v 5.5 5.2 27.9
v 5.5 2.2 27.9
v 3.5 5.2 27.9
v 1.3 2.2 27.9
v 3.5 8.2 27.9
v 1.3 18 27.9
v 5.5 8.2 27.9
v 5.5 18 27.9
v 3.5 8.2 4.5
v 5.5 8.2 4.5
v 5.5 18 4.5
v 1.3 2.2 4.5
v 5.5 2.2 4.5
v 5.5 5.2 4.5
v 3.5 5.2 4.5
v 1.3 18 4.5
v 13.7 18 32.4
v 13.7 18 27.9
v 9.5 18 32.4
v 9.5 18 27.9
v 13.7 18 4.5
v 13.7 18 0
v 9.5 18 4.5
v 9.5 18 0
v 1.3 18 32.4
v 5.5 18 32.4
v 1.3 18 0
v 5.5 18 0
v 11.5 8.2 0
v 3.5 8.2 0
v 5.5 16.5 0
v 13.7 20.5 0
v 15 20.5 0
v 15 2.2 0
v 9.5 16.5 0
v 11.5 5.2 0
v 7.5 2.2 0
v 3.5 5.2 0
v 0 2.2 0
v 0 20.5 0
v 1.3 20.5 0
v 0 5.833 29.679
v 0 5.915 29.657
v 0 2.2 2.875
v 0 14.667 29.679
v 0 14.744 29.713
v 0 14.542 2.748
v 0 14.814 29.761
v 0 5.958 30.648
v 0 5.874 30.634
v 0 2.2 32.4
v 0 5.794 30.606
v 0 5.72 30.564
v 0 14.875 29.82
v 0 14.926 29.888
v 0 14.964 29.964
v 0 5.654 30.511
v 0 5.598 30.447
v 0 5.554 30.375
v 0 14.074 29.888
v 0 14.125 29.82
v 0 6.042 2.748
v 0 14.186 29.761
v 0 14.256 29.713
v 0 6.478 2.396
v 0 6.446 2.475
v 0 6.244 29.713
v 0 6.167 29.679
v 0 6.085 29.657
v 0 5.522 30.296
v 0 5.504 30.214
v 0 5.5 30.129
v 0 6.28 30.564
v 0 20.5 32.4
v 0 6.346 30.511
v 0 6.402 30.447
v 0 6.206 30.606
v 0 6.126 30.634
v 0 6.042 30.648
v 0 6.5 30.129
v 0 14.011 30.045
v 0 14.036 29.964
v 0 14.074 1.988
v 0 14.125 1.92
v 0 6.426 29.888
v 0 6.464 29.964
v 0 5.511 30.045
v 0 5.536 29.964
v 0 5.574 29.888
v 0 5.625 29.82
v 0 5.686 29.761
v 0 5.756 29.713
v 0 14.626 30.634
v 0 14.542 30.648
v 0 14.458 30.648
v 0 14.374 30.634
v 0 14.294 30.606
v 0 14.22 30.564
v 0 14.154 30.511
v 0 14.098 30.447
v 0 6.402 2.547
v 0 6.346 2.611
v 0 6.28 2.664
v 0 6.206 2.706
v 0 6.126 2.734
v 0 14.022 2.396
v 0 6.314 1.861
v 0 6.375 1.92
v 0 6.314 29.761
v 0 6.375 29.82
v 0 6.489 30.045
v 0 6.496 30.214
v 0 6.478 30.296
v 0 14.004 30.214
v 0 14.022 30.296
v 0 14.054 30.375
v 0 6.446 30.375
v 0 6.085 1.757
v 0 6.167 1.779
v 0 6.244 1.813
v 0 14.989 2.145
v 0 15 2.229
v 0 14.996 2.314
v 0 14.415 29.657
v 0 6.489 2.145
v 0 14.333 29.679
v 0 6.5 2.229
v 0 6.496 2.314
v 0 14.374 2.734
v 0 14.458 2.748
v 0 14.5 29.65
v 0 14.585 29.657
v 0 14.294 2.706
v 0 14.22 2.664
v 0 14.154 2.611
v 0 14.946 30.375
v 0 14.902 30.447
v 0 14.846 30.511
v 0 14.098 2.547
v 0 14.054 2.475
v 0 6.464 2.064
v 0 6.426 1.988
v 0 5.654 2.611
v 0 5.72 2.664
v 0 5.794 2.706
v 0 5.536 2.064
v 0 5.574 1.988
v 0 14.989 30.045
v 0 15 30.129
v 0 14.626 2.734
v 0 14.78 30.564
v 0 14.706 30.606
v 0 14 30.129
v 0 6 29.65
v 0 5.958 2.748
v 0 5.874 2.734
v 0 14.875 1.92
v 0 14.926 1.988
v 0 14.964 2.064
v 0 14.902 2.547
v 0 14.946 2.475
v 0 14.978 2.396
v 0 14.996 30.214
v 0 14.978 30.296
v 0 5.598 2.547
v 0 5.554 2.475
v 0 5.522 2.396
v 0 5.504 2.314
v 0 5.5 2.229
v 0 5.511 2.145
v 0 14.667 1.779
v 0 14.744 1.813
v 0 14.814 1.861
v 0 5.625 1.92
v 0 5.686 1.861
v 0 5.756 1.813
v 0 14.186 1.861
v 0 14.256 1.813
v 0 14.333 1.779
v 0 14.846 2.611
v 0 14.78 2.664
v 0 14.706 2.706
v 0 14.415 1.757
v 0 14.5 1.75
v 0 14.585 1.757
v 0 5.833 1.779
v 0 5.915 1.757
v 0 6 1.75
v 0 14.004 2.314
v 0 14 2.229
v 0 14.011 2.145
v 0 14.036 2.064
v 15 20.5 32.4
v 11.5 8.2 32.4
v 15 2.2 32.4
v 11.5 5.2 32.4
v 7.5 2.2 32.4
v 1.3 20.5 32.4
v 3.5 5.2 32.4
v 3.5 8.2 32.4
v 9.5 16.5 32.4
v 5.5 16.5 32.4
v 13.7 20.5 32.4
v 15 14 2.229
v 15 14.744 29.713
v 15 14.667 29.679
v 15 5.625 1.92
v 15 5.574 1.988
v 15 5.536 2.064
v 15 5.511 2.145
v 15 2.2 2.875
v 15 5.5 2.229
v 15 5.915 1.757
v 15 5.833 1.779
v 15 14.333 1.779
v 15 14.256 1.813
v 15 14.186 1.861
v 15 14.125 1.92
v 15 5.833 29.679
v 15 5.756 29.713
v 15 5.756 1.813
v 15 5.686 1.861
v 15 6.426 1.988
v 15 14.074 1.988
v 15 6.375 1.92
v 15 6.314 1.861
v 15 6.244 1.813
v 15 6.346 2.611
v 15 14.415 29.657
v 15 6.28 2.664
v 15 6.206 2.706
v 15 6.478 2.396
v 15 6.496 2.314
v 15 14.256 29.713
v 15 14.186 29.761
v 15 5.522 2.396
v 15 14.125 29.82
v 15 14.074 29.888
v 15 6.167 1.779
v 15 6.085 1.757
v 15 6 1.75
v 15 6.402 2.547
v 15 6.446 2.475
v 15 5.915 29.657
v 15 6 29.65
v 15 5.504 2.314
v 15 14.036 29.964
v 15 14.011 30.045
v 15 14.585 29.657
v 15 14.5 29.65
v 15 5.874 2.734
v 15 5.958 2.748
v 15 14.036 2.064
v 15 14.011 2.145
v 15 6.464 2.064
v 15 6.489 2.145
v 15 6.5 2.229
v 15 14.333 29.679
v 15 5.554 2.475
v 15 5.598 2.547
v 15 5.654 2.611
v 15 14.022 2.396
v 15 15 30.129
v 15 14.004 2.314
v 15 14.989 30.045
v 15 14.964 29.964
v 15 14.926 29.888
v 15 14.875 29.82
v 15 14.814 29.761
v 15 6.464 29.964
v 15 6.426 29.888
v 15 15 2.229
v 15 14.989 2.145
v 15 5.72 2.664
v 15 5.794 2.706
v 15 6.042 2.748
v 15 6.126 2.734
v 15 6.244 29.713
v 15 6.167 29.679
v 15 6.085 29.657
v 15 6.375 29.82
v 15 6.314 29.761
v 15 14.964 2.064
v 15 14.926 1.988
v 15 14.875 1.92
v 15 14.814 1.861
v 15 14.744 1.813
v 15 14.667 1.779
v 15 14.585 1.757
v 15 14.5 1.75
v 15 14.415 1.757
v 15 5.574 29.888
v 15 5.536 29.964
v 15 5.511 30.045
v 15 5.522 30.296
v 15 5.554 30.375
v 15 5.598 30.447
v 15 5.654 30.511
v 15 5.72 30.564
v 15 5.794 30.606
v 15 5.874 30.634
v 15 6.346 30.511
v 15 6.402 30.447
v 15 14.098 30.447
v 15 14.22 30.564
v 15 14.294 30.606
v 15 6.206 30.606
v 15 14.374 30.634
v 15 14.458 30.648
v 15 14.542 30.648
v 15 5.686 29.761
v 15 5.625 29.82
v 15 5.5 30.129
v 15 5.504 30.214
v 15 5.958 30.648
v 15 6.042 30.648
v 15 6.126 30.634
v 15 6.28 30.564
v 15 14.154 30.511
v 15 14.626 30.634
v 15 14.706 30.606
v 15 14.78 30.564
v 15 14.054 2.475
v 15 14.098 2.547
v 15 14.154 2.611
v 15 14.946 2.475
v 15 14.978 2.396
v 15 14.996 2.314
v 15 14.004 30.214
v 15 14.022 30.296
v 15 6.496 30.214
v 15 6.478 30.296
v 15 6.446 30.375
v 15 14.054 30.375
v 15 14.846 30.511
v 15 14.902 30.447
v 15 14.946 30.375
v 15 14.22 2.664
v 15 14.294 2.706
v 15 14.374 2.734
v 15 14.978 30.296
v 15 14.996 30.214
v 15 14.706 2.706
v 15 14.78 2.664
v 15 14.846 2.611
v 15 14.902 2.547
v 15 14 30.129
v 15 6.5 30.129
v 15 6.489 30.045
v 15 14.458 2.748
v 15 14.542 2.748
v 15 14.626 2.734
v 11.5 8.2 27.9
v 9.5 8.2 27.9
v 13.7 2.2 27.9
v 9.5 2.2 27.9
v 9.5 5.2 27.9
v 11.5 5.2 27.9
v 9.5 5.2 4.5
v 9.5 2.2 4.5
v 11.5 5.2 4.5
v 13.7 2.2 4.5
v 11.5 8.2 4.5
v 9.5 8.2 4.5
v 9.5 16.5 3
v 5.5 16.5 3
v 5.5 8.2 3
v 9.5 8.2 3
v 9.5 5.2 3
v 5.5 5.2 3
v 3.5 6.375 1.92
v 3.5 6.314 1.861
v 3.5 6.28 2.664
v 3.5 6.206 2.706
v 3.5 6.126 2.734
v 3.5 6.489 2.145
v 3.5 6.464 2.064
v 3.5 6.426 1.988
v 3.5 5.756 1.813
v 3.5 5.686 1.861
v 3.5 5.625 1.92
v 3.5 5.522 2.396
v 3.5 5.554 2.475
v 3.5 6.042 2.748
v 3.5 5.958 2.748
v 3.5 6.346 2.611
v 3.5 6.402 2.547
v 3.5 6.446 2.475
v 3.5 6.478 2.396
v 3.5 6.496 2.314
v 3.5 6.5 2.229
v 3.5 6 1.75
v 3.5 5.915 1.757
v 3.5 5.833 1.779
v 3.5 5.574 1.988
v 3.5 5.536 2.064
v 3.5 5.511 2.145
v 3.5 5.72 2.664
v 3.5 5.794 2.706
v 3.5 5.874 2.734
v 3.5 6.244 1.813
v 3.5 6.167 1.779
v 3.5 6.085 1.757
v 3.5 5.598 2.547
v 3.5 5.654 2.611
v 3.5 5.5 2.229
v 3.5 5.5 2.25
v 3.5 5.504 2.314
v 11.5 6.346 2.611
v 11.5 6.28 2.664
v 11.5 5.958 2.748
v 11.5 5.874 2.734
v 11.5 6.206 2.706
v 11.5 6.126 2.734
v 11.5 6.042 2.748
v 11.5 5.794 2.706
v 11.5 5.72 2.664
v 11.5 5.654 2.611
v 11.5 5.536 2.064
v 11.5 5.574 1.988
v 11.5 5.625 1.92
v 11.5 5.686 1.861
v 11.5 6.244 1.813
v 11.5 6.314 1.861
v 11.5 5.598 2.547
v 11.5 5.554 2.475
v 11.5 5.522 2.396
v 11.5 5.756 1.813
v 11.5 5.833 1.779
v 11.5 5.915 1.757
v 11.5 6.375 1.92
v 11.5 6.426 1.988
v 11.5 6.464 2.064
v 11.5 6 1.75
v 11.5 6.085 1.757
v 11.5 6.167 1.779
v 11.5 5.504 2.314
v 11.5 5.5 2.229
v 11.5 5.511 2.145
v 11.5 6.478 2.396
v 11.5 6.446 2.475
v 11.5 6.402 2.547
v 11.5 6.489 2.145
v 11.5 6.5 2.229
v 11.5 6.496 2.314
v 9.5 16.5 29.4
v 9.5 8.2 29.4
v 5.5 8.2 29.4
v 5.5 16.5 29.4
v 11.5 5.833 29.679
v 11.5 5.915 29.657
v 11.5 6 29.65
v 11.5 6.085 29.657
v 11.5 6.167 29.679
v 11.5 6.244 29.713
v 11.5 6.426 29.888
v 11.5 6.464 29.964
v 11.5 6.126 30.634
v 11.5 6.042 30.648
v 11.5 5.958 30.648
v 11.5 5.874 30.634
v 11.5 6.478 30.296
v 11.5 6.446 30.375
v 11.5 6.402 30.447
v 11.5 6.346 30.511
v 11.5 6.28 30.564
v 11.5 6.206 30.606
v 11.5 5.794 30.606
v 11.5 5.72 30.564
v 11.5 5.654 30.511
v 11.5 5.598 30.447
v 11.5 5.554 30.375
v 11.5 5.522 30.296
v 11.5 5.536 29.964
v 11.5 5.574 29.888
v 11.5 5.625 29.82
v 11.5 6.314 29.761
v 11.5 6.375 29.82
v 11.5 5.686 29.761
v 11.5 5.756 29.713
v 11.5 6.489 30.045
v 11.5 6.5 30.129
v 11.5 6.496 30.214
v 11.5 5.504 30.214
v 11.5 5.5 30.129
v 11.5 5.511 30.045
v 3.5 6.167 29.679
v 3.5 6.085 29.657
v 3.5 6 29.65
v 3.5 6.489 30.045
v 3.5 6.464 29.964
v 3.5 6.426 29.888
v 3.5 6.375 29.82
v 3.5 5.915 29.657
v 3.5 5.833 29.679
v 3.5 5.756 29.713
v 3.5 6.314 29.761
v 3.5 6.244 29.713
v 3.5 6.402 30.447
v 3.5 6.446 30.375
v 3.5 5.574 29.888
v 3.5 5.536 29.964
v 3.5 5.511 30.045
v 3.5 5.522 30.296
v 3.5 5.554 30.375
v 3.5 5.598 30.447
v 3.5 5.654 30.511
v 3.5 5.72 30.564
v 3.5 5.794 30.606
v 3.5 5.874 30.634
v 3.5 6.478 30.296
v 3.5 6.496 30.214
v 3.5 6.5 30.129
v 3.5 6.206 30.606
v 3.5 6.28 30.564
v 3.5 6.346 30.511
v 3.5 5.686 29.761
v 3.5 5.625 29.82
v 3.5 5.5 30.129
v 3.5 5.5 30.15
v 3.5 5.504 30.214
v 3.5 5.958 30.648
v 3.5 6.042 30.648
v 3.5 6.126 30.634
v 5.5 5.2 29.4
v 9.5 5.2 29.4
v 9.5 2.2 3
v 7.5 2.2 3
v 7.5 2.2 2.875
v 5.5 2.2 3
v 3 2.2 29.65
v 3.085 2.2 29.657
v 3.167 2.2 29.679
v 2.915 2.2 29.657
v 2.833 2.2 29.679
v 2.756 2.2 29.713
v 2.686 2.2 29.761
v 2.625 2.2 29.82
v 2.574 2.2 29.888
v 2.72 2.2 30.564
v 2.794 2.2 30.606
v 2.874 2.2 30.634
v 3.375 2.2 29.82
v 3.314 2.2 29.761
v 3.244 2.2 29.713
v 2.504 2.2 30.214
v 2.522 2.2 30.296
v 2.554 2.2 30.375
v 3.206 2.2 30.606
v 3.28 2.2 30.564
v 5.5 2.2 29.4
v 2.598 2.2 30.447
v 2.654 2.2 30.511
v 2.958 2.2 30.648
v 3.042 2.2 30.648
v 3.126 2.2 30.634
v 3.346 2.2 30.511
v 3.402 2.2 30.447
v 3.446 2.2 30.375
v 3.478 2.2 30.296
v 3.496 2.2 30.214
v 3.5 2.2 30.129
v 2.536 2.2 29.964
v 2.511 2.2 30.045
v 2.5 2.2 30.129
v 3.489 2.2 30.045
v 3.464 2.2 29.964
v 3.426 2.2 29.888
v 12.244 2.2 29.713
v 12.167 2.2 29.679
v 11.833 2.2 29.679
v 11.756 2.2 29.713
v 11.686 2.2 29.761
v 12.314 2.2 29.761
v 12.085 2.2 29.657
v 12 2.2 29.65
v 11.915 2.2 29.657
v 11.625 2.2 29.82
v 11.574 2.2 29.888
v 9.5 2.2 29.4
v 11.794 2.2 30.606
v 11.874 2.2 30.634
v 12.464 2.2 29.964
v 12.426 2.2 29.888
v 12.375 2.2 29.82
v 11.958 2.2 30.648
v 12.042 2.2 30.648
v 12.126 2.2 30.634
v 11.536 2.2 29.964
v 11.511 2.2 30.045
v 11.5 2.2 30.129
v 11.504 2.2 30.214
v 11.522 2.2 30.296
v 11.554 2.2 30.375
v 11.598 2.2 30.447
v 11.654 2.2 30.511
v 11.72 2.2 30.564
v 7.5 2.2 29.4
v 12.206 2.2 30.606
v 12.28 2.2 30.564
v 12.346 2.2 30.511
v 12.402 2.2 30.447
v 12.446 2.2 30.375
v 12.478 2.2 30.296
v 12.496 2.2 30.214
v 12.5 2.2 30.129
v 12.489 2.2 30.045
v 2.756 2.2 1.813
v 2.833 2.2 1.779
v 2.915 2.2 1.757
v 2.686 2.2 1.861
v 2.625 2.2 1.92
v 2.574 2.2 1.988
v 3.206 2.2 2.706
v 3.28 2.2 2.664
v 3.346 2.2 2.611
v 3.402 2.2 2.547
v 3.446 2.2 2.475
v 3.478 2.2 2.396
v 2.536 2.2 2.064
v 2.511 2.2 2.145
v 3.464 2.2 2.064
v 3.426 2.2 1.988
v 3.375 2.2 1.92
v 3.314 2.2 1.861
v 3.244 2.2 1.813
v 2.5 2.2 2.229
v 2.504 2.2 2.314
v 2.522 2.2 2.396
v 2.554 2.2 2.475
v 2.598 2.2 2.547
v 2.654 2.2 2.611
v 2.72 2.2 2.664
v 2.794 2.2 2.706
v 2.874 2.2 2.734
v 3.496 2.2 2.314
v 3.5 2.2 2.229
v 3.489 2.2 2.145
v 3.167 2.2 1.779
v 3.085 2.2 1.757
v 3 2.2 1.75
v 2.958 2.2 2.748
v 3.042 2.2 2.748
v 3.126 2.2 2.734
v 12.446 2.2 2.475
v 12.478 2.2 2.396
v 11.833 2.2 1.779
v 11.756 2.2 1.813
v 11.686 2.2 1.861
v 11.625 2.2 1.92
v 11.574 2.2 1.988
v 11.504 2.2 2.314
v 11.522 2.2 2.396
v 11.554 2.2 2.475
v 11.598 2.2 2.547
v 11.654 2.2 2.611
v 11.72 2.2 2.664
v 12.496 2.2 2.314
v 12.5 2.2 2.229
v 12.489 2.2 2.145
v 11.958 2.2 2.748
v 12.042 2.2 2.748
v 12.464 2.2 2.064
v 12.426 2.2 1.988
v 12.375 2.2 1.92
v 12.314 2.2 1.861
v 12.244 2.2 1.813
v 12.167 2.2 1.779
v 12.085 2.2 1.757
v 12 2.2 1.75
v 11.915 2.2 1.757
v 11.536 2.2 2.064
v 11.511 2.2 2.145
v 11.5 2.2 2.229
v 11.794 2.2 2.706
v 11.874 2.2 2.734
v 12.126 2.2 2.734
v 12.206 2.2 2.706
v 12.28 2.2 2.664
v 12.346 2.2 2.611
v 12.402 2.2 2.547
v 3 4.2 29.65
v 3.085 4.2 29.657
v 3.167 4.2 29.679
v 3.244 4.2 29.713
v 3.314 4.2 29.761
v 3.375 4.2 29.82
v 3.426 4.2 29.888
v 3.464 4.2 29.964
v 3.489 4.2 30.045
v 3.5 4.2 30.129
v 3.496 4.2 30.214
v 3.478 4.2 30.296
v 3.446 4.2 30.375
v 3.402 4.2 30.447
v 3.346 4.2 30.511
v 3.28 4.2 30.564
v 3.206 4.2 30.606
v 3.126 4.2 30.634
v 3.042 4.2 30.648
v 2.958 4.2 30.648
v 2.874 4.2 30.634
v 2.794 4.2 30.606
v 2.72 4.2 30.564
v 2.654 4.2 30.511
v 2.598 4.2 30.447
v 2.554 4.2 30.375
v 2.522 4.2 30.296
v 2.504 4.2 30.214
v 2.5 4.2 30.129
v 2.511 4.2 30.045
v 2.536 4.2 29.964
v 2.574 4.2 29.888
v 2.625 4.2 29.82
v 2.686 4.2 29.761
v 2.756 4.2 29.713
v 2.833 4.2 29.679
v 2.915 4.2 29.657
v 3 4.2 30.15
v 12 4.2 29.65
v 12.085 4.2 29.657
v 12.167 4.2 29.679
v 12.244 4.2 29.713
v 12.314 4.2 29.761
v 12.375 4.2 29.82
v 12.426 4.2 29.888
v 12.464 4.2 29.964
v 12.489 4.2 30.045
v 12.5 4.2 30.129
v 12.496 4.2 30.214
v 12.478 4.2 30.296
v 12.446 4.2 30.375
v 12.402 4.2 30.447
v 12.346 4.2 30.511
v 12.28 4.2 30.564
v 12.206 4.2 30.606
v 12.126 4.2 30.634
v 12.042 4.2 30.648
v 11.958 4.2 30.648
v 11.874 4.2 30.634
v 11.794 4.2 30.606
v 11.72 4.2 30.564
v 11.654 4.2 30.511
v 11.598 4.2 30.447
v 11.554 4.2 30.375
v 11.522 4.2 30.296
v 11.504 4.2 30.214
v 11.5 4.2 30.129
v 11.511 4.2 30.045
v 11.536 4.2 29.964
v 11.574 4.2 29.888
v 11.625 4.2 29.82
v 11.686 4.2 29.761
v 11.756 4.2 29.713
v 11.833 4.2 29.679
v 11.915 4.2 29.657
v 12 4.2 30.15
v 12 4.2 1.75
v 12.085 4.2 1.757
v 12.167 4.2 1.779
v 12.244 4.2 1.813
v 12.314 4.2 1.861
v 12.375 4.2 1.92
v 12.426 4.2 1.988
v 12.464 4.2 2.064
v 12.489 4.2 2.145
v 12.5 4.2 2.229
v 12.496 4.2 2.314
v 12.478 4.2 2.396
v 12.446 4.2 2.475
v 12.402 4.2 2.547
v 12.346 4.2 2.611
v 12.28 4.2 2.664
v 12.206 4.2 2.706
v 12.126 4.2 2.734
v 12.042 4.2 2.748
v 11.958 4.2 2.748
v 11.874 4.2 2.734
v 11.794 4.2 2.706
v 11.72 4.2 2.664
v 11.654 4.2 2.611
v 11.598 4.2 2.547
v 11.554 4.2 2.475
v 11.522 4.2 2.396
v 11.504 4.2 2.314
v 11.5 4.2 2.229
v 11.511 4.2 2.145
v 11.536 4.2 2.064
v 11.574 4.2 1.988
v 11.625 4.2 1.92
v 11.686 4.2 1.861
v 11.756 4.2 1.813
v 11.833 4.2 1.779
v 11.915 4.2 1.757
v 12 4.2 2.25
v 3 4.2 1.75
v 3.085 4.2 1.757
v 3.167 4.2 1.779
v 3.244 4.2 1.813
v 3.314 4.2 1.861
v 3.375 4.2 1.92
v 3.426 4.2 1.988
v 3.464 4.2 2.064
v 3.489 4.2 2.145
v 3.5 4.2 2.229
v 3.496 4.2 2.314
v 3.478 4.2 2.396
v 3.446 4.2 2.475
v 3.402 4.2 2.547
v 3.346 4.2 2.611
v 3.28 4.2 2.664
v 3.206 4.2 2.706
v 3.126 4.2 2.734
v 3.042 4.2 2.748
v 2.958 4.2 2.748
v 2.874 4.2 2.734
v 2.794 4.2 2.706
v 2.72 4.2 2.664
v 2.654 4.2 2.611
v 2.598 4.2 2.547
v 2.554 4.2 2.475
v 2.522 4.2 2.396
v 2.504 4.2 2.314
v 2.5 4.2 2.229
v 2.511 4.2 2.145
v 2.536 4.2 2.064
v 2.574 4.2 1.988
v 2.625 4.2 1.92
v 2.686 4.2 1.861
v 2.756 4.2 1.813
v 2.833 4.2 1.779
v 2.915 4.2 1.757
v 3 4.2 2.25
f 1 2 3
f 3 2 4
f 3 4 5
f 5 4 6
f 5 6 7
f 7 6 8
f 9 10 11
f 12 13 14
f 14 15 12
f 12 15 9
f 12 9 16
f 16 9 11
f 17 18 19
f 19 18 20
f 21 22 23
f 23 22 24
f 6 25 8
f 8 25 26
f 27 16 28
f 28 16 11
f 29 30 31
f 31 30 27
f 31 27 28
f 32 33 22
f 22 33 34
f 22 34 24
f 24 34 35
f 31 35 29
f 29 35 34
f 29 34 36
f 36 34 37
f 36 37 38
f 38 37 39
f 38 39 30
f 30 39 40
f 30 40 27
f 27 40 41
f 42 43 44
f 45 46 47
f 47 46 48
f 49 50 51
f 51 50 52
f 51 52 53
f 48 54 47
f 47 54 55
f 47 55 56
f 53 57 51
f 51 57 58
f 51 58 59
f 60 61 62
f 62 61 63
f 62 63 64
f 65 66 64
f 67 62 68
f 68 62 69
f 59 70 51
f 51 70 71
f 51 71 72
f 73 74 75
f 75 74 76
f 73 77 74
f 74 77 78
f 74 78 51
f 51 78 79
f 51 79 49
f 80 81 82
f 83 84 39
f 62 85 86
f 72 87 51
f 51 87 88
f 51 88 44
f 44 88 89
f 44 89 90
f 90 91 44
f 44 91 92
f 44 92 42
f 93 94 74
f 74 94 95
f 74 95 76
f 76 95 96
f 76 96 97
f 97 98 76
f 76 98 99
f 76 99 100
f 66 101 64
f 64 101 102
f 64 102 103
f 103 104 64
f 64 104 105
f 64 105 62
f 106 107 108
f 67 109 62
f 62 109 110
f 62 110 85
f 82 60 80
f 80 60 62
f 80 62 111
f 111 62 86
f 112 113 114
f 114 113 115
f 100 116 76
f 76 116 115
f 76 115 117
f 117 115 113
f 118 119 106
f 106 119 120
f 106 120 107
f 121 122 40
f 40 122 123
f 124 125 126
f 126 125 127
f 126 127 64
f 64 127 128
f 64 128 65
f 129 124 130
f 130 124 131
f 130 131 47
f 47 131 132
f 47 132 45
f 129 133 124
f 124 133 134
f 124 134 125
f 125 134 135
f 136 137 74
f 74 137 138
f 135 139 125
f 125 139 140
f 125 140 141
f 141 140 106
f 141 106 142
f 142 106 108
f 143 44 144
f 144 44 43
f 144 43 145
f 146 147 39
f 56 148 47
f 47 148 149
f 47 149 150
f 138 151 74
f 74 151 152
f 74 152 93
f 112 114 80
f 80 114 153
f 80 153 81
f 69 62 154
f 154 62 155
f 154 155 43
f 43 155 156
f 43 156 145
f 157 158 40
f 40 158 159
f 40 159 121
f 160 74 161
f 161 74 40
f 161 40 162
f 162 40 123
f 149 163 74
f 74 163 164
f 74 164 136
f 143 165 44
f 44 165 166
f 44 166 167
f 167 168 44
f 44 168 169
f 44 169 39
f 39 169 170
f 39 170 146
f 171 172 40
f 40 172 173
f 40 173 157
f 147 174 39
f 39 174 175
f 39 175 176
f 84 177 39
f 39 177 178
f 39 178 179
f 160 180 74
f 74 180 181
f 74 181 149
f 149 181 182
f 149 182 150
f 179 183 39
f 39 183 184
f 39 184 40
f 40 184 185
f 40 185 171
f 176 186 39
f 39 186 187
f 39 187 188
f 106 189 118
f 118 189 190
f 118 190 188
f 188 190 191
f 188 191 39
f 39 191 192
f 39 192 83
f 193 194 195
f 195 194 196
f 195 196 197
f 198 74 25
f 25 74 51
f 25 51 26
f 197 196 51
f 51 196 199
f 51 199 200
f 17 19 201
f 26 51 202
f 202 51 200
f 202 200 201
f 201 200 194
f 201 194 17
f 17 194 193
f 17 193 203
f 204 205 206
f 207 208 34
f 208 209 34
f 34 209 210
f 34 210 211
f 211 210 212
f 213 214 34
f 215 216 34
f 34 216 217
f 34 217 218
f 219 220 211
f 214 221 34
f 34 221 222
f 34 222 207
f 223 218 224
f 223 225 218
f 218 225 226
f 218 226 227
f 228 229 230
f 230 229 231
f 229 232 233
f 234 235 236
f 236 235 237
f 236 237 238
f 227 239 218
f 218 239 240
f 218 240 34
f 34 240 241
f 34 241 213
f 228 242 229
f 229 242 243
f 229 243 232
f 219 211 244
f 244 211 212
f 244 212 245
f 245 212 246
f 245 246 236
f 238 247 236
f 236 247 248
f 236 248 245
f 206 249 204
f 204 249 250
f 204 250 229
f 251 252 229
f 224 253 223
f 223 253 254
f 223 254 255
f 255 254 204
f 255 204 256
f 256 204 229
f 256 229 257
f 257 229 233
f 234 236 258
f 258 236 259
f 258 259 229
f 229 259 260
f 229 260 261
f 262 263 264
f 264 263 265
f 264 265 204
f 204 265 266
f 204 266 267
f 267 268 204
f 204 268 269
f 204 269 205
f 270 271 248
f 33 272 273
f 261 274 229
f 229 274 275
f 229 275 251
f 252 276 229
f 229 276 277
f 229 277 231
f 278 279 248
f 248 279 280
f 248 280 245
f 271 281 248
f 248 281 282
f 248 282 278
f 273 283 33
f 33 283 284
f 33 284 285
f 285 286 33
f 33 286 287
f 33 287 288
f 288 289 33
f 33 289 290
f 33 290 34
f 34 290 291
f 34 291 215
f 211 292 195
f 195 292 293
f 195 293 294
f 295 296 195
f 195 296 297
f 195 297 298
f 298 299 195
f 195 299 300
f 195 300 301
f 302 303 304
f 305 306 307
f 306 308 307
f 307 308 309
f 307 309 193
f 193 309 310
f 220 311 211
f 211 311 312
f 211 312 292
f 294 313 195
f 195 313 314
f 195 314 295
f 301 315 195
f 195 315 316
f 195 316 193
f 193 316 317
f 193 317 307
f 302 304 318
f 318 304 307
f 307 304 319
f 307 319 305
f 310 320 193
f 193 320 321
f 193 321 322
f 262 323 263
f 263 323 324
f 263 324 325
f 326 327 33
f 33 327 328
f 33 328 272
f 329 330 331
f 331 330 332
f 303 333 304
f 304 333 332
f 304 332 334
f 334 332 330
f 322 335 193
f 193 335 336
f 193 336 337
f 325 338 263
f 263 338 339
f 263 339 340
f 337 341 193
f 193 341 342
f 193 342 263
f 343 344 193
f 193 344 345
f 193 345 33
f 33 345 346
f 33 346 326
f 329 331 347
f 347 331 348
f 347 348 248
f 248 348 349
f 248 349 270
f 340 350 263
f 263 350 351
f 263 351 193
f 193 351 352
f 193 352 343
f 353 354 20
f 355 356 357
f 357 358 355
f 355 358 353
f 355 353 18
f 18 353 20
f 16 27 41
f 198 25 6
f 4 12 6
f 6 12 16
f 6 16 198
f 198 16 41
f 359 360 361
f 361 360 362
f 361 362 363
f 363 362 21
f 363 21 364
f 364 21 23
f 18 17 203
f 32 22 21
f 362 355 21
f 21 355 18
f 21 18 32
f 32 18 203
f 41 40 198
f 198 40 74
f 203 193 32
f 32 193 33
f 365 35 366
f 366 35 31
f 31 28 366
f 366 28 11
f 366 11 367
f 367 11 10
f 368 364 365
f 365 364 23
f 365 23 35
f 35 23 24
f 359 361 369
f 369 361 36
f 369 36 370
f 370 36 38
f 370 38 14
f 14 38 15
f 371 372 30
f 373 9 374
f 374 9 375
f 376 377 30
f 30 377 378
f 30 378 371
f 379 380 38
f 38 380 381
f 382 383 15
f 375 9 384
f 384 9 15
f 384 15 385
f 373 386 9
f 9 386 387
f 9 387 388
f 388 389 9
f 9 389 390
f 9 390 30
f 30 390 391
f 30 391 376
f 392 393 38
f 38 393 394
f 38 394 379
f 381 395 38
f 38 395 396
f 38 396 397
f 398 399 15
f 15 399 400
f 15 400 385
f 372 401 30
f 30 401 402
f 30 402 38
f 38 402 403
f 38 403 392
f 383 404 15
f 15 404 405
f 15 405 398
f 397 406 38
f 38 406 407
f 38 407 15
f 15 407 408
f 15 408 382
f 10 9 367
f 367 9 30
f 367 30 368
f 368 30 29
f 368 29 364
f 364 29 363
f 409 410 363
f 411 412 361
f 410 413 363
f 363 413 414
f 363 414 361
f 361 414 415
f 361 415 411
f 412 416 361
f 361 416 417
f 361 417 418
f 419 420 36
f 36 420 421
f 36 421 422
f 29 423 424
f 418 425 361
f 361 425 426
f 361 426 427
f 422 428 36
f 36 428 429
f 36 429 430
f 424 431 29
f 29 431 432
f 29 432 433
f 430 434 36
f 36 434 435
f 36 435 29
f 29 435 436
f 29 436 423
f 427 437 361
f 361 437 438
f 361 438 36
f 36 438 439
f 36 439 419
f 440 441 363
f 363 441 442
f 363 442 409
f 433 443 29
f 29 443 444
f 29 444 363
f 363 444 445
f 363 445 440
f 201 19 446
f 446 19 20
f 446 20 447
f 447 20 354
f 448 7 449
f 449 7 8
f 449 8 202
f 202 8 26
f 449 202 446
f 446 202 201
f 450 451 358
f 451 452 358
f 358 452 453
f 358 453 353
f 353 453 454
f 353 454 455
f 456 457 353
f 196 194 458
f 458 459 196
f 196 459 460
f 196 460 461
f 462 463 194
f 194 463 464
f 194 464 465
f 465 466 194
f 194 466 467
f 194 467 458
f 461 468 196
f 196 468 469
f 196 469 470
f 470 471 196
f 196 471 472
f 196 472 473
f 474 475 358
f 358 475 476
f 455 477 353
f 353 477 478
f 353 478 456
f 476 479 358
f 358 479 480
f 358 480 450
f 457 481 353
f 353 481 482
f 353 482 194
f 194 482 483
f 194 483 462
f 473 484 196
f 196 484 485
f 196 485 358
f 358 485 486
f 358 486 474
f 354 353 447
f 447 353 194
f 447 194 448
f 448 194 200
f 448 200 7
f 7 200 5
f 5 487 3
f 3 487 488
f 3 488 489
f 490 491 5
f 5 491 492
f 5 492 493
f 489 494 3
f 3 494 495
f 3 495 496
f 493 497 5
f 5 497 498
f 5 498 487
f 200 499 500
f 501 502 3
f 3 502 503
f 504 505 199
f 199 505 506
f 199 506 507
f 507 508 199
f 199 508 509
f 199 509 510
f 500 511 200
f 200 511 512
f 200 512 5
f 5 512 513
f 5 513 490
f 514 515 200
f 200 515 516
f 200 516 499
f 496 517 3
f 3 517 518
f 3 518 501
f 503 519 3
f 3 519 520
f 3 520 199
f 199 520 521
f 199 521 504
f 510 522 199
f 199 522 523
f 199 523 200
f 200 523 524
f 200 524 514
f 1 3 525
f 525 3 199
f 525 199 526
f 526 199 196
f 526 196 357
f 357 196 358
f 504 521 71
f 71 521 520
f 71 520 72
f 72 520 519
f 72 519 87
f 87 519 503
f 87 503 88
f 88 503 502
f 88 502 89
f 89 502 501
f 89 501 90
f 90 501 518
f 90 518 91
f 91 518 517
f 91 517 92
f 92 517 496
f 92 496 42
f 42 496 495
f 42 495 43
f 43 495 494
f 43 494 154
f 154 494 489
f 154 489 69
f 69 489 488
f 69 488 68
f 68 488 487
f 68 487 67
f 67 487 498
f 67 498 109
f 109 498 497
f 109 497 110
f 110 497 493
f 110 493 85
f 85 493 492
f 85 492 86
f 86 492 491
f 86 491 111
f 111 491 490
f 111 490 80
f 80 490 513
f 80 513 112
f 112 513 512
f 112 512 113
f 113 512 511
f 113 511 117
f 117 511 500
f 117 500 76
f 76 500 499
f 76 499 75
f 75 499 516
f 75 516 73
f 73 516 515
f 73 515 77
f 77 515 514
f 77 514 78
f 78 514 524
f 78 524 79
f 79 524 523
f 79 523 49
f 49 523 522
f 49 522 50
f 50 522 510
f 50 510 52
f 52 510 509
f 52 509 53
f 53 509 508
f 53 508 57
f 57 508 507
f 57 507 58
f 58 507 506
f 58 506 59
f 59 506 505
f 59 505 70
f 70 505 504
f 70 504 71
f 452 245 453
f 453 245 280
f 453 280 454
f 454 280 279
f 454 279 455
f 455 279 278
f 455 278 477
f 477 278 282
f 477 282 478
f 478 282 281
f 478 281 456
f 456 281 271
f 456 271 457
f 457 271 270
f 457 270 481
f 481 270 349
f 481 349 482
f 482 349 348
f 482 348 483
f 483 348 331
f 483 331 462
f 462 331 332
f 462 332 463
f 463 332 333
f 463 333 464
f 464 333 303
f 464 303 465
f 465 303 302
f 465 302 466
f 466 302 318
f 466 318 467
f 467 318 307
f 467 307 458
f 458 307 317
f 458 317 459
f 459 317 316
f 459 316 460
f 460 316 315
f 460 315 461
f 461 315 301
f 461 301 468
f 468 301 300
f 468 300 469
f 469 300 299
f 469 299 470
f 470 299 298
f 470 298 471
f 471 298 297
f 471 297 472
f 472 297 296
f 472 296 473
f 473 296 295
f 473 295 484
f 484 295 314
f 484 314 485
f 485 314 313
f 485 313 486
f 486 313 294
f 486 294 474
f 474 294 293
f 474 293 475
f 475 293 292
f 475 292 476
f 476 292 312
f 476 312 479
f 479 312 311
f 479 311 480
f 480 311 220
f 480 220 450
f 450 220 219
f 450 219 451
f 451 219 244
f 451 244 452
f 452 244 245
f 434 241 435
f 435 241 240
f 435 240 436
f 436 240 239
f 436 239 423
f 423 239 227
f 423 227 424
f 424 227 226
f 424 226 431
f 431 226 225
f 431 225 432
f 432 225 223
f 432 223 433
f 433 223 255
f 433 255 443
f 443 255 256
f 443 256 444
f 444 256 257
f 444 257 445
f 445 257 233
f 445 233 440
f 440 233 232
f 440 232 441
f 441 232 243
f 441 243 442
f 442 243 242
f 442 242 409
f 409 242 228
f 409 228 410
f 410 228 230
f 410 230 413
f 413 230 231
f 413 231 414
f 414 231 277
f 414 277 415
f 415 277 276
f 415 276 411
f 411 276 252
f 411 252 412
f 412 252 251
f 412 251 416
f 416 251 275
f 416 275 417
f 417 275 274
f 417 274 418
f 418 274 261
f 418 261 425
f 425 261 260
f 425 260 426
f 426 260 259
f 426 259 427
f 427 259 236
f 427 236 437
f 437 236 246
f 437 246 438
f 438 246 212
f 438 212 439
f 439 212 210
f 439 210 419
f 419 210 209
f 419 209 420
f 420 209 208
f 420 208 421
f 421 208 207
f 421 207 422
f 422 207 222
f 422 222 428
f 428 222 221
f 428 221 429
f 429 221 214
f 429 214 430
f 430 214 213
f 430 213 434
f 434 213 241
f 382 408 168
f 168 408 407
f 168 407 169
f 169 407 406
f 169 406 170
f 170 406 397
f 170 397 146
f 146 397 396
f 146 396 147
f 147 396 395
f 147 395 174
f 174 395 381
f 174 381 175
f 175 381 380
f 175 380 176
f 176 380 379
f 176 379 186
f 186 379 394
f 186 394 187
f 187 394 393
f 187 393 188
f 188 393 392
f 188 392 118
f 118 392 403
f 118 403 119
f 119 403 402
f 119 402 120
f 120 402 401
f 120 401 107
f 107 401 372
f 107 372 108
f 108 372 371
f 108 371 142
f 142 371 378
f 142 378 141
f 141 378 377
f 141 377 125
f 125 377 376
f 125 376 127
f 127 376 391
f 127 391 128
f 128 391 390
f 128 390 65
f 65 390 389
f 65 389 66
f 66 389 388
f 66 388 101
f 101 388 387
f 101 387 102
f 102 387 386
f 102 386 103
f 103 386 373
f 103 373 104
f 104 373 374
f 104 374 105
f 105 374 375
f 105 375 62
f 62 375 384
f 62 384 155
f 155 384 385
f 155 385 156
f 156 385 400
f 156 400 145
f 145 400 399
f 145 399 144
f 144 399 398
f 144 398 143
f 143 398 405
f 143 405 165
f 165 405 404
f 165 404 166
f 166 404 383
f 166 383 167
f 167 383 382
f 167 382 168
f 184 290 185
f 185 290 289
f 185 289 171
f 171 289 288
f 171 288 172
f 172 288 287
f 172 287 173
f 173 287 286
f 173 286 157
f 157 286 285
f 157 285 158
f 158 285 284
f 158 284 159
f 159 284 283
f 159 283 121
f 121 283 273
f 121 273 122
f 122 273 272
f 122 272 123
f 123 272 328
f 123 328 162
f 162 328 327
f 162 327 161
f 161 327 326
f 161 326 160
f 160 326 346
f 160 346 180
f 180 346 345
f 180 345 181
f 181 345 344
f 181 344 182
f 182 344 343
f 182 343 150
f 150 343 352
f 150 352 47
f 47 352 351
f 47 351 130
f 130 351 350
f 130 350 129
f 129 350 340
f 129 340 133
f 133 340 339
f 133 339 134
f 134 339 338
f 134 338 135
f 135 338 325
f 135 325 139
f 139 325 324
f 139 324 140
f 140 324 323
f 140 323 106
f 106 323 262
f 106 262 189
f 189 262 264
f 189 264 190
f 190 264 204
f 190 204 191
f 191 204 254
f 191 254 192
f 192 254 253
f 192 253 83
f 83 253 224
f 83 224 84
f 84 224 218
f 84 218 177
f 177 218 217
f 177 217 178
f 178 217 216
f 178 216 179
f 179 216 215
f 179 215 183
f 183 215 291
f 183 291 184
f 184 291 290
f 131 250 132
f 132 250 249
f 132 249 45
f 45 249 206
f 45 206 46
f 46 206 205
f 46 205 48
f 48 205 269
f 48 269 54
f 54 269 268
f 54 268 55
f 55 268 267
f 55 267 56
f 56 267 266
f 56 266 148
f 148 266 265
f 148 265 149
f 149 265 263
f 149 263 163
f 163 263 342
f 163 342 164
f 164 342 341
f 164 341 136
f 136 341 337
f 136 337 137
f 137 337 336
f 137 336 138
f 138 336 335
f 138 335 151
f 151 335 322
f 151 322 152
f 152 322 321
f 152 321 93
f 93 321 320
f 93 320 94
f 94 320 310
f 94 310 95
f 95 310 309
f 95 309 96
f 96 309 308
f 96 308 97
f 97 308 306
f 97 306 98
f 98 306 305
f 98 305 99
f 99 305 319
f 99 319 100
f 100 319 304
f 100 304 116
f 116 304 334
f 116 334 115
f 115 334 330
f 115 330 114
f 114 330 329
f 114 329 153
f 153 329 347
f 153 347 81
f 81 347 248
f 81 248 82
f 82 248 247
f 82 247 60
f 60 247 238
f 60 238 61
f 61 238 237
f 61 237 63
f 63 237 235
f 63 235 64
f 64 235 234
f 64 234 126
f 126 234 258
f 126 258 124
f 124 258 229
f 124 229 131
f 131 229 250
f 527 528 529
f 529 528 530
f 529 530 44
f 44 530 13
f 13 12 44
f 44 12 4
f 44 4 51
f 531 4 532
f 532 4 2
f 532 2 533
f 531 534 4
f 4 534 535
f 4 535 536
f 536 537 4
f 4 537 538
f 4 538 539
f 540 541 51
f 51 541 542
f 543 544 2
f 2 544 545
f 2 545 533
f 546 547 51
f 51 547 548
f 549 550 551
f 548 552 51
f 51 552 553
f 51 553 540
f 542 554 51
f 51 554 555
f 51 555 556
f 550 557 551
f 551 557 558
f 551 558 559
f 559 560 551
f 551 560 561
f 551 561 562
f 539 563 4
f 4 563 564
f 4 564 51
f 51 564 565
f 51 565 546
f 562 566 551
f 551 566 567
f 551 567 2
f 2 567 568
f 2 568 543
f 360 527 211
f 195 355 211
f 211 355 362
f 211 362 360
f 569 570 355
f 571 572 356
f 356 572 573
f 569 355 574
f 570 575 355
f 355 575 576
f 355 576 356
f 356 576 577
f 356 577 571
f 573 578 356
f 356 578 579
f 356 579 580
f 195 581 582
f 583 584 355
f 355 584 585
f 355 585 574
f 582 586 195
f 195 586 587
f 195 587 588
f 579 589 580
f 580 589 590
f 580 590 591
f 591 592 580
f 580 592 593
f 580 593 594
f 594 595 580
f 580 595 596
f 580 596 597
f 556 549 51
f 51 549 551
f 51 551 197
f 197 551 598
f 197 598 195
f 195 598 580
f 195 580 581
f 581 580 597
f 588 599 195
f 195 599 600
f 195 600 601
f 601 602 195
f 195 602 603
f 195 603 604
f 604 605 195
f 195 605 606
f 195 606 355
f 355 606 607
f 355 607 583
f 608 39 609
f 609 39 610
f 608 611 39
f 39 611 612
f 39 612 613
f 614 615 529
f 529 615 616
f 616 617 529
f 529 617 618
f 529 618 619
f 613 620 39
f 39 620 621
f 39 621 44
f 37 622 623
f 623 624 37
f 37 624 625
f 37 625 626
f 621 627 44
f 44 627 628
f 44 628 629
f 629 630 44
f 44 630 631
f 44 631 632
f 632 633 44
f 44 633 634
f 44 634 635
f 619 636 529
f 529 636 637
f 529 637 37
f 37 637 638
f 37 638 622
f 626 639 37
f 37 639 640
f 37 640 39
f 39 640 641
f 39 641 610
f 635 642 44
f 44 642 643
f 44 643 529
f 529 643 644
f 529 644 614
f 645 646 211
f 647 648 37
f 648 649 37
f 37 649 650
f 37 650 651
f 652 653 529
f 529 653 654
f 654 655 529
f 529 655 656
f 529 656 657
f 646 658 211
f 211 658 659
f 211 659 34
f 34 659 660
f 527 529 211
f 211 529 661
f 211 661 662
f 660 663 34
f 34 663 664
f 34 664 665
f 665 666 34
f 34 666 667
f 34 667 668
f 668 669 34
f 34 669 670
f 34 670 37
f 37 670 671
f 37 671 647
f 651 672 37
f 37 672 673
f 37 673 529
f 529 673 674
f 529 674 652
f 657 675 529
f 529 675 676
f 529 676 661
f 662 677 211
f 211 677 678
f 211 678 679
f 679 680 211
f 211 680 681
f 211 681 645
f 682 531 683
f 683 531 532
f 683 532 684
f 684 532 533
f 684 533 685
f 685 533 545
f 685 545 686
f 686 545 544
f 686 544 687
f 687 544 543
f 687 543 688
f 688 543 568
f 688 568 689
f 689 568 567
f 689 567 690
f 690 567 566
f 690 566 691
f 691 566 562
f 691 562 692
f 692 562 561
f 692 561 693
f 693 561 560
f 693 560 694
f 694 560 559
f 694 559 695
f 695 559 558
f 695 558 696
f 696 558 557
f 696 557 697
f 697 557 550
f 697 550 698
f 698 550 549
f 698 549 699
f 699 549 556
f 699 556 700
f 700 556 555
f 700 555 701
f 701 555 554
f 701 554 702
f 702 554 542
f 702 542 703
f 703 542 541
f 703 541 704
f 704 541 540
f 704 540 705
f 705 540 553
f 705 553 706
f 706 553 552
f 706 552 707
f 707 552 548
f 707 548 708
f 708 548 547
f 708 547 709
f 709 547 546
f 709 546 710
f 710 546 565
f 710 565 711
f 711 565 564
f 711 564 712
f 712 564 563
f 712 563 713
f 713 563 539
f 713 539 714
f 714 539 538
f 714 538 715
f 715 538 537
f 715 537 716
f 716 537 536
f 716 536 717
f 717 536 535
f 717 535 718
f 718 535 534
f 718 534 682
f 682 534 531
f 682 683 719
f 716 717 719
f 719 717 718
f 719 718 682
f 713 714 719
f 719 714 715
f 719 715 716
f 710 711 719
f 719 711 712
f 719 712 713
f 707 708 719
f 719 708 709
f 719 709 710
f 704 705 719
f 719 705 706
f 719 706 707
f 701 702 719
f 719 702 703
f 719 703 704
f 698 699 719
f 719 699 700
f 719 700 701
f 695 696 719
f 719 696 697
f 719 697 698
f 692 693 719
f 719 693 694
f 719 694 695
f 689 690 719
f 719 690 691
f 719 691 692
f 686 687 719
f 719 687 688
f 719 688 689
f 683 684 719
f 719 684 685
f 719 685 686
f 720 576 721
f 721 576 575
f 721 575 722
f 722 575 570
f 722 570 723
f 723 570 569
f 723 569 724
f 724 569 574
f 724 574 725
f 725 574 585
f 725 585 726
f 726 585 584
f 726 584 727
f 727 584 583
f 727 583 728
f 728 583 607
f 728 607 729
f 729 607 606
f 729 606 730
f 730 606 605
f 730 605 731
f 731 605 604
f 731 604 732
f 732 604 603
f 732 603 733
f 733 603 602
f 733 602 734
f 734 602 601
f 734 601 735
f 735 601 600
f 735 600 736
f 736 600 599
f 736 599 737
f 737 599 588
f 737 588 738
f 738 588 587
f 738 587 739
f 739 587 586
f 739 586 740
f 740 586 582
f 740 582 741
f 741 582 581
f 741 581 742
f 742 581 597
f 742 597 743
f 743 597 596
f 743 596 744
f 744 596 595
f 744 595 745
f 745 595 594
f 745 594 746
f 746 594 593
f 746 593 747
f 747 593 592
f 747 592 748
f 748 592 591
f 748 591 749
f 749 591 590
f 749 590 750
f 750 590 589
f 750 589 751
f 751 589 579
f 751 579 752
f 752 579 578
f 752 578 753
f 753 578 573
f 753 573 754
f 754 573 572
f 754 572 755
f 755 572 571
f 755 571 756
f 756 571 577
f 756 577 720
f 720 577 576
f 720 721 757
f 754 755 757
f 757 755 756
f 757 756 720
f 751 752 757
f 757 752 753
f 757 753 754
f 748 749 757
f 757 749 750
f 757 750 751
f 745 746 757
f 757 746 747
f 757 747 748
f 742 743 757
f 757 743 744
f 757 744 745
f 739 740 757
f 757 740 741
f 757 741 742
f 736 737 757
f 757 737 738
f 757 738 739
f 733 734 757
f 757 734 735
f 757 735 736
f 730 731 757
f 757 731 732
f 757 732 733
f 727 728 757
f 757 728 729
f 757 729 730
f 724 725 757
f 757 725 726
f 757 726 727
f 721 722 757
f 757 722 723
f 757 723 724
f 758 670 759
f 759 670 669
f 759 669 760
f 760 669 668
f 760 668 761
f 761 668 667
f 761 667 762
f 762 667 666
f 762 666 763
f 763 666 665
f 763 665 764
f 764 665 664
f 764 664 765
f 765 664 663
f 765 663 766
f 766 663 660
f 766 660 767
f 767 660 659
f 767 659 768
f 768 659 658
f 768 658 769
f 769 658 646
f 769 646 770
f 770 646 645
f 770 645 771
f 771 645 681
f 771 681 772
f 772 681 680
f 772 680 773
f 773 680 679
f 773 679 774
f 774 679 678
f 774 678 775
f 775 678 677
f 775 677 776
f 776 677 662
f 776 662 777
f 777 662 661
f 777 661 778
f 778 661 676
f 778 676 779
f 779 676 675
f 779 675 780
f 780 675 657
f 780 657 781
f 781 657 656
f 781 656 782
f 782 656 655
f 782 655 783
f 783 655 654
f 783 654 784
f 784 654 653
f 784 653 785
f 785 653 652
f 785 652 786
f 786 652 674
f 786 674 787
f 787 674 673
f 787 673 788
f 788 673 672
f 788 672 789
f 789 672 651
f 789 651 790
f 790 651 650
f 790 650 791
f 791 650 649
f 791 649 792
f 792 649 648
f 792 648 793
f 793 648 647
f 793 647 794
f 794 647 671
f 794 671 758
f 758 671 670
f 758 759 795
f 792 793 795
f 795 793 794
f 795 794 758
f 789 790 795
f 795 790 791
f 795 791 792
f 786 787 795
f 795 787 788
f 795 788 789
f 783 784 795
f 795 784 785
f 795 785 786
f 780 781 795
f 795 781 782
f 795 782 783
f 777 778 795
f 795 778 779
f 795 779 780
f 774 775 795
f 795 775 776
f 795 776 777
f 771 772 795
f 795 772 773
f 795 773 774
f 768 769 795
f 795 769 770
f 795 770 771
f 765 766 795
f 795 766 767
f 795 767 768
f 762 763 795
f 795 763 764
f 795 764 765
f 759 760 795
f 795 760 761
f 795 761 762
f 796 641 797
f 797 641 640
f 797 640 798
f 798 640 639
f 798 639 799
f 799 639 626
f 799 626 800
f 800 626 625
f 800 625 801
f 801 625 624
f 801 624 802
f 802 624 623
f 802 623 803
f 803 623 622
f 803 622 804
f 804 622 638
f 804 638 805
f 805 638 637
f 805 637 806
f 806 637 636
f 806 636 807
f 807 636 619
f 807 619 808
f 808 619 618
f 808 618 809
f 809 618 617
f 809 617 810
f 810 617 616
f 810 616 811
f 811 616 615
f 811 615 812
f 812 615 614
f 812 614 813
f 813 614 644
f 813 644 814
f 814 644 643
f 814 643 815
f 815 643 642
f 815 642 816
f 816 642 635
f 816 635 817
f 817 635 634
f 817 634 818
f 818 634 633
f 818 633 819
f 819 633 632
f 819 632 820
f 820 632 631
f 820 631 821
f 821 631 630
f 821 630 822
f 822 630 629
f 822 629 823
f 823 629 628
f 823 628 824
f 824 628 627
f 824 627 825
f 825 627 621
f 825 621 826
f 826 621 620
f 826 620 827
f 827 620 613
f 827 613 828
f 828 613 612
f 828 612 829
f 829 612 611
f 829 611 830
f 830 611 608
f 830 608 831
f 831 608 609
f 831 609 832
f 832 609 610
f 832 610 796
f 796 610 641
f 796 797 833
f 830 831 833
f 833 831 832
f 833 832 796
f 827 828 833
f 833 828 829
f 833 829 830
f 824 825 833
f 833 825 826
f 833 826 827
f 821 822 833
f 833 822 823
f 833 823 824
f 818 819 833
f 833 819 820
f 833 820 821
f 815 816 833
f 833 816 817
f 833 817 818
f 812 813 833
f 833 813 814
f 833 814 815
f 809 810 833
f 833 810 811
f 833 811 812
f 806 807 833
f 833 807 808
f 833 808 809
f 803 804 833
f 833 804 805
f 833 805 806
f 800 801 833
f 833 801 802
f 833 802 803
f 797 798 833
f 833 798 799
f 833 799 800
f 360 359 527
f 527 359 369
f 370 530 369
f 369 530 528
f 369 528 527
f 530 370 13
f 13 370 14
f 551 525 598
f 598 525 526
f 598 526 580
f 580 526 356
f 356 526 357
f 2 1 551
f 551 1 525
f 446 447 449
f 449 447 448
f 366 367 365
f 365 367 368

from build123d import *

# Parameters (mm, degrees)
SKETCH_1_W          = 15
SKETCH_1_H          = 32.4
SKETCH_1_R          = 0.8
EXTRUDE_1_DEPTH     = 2.2
SKETCH_2_W          = 15
SKETCH_2_H          = 32.4
SKETCH_2_W_2        = 12.4
SKETCH_2_H_2        = 23.4
EXTRUDE_2_DEPTH     = 15.8
EXTRUDE_START       = 15.8
SKETCH_2_3_W        = 1.3
SKETCH_2_3_H        = 4.5
SKETCH_2_3_H_2      = 23.4
EXTRUDE_3_DEPTH     = 2.5
SKETCH_3_W          = 8
SKETCH_3_H          = 3
SKETCH_3_W_2        = 4
SKETCH_3_H_2        = 1.5
CUT_EXTRUDE_1_DEPTH = 42.170499147
SKETCH_4_R          = 0.5
CUT_EXTRUDE_2_DEPTH = 42.170499147
SKETCH_5_W          = 32.4
SKETCH_5_H          = 2.2
CUT_EXTRUDE_3_DEPTH = 42.170499147
SKETCH_6_R          = 0.5
CUT_EXTRUDE_4_DEPTH = 2
SKETCH_7_W          = 4
SKETCH_7_H          = 1.5
CUT_EXTRUDE_5_DEPTH = 39.461019227


with BuildPart() as part:
    # 草图1 → 凸台-拉伸1 (new body)
    with BuildSketch(Plane(origin=(0, 0, 0), x_dir=(1, 0, 0), z_dir=(0, 1, 0))):
        with Locations((7.5, -16.2)):
            Rectangle(SKETCH_1_W, SKETCH_1_H)
        with Locations(Location((3, -3, 0), (0, 0, 270))):
            Circle(SKETCH_1_R, mode=Mode.SUBTRACT)
        with Locations(Location((12, -3, 0), (0, 0, 270))):
            Circle(SKETCH_1_R, mode=Mode.SUBTRACT)
        with Locations(Location((3, -29.4, 0), (0, 0, 270))):
            Circle(SKETCH_1_R, mode=Mode.SUBTRACT)
        with Locations(Location((12, -29.4, 0), (0, 0, 270))):
            Circle(SKETCH_1_R, mode=Mode.SUBTRACT)
    extrude(amount=EXTRUDE_1_DEPTH)

    # 草图2 → 凸台-拉伸2 (add)
    with BuildSketch(Plane(origin=(0, 2.2, 0), x_dir=(1, 0, 0), z_dir=(0, 1, 0))):
        with Locations((7.5, -16.2)):
            Rectangle(SKETCH_2_W, SKETCH_2_H)
        with Locations((7.5, -16.2)):
            Rectangle(SKETCH_2_W_2, SKETCH_2_H_2, mode=Mode.SUBTRACT)
    extrude(amount=EXTRUDE_2_DEPTH)

    # 草图2<3> → 凸台-拉伸3 (add)
    with BuildSketch(Plane(origin=(0, 2.2, 0), x_dir=(1, 0, 0), z_dir=(0, 1, 0)).offset(EXTRUDE_START)):
        with Locations((0.65, -2.25)):
            Rectangle(SKETCH_2_3_W, SKETCH_2_3_H)
        with Locations((0.65, -16.2)):
            Rectangle(SKETCH_2_3_W, SKETCH_2_3_H_2)
        with Locations((0.65, -30.15)):
            Rectangle(SKETCH_2_3_W, SKETCH_2_3_H)
        with Locations((14.35, -30.15)):
            Rectangle(SKETCH_2_3_W, SKETCH_2_3_H)
        with Locations((14.35, -16.2)):
            Rectangle(SKETCH_2_3_W, SKETCH_2_3_H_2)
        with Locations((14.35, -2.25)):
            Rectangle(SKETCH_2_3_W, SKETCH_2_3_H)
    extrude(amount=EXTRUDE_3_DEPTH)

    # 草图3 → 切除-拉伸1 (cut, through all)
    with BuildSketch(Plane(origin=(0, 0, 0), x_dir=(-1, 0, 0), z_dir=(0, 0, -1))):
        with Locations((-7.5, 6.7)):
            Rectangle(SKETCH_3_W, SKETCH_3_H)
        with Locations((-7.5, 17.25)):
            Rectangle(SKETCH_3_W_2, SKETCH_3_H_2)
    extrude(amount=-CUT_EXTRUDE_1_DEPTH, mode=Mode.SUBTRACT)

    # 草图4 → 切除-拉伸2 (cut, through all)
    with BuildSketch(Plane(origin=(15, 0, 0), x_dir=(0, 0, -1), z_dir=(1, 0, 0))):
        with Locations((-30.15, 6)):
            Circle(SKETCH_4_R)
        with Locations((-2.25, 6)):
            Circle(SKETCH_4_R)
        with Locations((-30.15, 14.5)):
            Circle(SKETCH_4_R)
        with Locations((-2.25, 14.5)):
            Circle(SKETCH_4_R)
    extrude(amount=-CUT_EXTRUDE_2_DEPTH, mode=Mode.SUBTRACT)

    # 草图5 → 切除-拉伸3 (cut, through all)
    with BuildSketch(Plane.ZY):
        with Locations((16.2, 1.1)):
            Rectangle(SKETCH_5_W, SKETCH_5_H)
    extrude(amount=-CUT_EXTRUDE_3_DEPTH, mode=Mode.SUBTRACT)

    # 草图6 → 切除-拉伸4 (cut)
    with BuildSketch(Plane.XZ.offset(-2.2)):
        with Locations(Location((12, 30.15, 0), (0, 0, 270))):
            Circle(SKETCH_6_R)
        with Locations(Location((3, 30.15, 0), (0, 0, 270))):
            Circle(SKETCH_6_R)
        with Locations(Location((12, 2.25, 0), (0, 0, 270))):
            Circle(SKETCH_6_R)
        with Locations(Location((3, 2.25, 0), (0, 0, 270))):
            Circle(SKETCH_6_R)
    extrude(amount=-CUT_EXTRUDE_4_DEPTH, mode=Mode.SUBTRACT)

    # 草图7 → 切除-拉伸5 (cut, through all)
    with BuildSketch(Plane(origin=(0, 16.5, 0), x_dir=(1, 0, 0), z_dir=(0, 1, 0))):
        with Locations((7.5, -28.65)):
            Rectangle(SKETCH_7_W, SKETCH_7_H)
        with Locations((7.5, -3.75)):
            Rectangle(SKETCH_7_W, SKETCH_7_H)
    extrude(amount=-CUT_EXTRUDE_5_DEPTH, mode=Mode.SUBTRACT)


solid = part.part
